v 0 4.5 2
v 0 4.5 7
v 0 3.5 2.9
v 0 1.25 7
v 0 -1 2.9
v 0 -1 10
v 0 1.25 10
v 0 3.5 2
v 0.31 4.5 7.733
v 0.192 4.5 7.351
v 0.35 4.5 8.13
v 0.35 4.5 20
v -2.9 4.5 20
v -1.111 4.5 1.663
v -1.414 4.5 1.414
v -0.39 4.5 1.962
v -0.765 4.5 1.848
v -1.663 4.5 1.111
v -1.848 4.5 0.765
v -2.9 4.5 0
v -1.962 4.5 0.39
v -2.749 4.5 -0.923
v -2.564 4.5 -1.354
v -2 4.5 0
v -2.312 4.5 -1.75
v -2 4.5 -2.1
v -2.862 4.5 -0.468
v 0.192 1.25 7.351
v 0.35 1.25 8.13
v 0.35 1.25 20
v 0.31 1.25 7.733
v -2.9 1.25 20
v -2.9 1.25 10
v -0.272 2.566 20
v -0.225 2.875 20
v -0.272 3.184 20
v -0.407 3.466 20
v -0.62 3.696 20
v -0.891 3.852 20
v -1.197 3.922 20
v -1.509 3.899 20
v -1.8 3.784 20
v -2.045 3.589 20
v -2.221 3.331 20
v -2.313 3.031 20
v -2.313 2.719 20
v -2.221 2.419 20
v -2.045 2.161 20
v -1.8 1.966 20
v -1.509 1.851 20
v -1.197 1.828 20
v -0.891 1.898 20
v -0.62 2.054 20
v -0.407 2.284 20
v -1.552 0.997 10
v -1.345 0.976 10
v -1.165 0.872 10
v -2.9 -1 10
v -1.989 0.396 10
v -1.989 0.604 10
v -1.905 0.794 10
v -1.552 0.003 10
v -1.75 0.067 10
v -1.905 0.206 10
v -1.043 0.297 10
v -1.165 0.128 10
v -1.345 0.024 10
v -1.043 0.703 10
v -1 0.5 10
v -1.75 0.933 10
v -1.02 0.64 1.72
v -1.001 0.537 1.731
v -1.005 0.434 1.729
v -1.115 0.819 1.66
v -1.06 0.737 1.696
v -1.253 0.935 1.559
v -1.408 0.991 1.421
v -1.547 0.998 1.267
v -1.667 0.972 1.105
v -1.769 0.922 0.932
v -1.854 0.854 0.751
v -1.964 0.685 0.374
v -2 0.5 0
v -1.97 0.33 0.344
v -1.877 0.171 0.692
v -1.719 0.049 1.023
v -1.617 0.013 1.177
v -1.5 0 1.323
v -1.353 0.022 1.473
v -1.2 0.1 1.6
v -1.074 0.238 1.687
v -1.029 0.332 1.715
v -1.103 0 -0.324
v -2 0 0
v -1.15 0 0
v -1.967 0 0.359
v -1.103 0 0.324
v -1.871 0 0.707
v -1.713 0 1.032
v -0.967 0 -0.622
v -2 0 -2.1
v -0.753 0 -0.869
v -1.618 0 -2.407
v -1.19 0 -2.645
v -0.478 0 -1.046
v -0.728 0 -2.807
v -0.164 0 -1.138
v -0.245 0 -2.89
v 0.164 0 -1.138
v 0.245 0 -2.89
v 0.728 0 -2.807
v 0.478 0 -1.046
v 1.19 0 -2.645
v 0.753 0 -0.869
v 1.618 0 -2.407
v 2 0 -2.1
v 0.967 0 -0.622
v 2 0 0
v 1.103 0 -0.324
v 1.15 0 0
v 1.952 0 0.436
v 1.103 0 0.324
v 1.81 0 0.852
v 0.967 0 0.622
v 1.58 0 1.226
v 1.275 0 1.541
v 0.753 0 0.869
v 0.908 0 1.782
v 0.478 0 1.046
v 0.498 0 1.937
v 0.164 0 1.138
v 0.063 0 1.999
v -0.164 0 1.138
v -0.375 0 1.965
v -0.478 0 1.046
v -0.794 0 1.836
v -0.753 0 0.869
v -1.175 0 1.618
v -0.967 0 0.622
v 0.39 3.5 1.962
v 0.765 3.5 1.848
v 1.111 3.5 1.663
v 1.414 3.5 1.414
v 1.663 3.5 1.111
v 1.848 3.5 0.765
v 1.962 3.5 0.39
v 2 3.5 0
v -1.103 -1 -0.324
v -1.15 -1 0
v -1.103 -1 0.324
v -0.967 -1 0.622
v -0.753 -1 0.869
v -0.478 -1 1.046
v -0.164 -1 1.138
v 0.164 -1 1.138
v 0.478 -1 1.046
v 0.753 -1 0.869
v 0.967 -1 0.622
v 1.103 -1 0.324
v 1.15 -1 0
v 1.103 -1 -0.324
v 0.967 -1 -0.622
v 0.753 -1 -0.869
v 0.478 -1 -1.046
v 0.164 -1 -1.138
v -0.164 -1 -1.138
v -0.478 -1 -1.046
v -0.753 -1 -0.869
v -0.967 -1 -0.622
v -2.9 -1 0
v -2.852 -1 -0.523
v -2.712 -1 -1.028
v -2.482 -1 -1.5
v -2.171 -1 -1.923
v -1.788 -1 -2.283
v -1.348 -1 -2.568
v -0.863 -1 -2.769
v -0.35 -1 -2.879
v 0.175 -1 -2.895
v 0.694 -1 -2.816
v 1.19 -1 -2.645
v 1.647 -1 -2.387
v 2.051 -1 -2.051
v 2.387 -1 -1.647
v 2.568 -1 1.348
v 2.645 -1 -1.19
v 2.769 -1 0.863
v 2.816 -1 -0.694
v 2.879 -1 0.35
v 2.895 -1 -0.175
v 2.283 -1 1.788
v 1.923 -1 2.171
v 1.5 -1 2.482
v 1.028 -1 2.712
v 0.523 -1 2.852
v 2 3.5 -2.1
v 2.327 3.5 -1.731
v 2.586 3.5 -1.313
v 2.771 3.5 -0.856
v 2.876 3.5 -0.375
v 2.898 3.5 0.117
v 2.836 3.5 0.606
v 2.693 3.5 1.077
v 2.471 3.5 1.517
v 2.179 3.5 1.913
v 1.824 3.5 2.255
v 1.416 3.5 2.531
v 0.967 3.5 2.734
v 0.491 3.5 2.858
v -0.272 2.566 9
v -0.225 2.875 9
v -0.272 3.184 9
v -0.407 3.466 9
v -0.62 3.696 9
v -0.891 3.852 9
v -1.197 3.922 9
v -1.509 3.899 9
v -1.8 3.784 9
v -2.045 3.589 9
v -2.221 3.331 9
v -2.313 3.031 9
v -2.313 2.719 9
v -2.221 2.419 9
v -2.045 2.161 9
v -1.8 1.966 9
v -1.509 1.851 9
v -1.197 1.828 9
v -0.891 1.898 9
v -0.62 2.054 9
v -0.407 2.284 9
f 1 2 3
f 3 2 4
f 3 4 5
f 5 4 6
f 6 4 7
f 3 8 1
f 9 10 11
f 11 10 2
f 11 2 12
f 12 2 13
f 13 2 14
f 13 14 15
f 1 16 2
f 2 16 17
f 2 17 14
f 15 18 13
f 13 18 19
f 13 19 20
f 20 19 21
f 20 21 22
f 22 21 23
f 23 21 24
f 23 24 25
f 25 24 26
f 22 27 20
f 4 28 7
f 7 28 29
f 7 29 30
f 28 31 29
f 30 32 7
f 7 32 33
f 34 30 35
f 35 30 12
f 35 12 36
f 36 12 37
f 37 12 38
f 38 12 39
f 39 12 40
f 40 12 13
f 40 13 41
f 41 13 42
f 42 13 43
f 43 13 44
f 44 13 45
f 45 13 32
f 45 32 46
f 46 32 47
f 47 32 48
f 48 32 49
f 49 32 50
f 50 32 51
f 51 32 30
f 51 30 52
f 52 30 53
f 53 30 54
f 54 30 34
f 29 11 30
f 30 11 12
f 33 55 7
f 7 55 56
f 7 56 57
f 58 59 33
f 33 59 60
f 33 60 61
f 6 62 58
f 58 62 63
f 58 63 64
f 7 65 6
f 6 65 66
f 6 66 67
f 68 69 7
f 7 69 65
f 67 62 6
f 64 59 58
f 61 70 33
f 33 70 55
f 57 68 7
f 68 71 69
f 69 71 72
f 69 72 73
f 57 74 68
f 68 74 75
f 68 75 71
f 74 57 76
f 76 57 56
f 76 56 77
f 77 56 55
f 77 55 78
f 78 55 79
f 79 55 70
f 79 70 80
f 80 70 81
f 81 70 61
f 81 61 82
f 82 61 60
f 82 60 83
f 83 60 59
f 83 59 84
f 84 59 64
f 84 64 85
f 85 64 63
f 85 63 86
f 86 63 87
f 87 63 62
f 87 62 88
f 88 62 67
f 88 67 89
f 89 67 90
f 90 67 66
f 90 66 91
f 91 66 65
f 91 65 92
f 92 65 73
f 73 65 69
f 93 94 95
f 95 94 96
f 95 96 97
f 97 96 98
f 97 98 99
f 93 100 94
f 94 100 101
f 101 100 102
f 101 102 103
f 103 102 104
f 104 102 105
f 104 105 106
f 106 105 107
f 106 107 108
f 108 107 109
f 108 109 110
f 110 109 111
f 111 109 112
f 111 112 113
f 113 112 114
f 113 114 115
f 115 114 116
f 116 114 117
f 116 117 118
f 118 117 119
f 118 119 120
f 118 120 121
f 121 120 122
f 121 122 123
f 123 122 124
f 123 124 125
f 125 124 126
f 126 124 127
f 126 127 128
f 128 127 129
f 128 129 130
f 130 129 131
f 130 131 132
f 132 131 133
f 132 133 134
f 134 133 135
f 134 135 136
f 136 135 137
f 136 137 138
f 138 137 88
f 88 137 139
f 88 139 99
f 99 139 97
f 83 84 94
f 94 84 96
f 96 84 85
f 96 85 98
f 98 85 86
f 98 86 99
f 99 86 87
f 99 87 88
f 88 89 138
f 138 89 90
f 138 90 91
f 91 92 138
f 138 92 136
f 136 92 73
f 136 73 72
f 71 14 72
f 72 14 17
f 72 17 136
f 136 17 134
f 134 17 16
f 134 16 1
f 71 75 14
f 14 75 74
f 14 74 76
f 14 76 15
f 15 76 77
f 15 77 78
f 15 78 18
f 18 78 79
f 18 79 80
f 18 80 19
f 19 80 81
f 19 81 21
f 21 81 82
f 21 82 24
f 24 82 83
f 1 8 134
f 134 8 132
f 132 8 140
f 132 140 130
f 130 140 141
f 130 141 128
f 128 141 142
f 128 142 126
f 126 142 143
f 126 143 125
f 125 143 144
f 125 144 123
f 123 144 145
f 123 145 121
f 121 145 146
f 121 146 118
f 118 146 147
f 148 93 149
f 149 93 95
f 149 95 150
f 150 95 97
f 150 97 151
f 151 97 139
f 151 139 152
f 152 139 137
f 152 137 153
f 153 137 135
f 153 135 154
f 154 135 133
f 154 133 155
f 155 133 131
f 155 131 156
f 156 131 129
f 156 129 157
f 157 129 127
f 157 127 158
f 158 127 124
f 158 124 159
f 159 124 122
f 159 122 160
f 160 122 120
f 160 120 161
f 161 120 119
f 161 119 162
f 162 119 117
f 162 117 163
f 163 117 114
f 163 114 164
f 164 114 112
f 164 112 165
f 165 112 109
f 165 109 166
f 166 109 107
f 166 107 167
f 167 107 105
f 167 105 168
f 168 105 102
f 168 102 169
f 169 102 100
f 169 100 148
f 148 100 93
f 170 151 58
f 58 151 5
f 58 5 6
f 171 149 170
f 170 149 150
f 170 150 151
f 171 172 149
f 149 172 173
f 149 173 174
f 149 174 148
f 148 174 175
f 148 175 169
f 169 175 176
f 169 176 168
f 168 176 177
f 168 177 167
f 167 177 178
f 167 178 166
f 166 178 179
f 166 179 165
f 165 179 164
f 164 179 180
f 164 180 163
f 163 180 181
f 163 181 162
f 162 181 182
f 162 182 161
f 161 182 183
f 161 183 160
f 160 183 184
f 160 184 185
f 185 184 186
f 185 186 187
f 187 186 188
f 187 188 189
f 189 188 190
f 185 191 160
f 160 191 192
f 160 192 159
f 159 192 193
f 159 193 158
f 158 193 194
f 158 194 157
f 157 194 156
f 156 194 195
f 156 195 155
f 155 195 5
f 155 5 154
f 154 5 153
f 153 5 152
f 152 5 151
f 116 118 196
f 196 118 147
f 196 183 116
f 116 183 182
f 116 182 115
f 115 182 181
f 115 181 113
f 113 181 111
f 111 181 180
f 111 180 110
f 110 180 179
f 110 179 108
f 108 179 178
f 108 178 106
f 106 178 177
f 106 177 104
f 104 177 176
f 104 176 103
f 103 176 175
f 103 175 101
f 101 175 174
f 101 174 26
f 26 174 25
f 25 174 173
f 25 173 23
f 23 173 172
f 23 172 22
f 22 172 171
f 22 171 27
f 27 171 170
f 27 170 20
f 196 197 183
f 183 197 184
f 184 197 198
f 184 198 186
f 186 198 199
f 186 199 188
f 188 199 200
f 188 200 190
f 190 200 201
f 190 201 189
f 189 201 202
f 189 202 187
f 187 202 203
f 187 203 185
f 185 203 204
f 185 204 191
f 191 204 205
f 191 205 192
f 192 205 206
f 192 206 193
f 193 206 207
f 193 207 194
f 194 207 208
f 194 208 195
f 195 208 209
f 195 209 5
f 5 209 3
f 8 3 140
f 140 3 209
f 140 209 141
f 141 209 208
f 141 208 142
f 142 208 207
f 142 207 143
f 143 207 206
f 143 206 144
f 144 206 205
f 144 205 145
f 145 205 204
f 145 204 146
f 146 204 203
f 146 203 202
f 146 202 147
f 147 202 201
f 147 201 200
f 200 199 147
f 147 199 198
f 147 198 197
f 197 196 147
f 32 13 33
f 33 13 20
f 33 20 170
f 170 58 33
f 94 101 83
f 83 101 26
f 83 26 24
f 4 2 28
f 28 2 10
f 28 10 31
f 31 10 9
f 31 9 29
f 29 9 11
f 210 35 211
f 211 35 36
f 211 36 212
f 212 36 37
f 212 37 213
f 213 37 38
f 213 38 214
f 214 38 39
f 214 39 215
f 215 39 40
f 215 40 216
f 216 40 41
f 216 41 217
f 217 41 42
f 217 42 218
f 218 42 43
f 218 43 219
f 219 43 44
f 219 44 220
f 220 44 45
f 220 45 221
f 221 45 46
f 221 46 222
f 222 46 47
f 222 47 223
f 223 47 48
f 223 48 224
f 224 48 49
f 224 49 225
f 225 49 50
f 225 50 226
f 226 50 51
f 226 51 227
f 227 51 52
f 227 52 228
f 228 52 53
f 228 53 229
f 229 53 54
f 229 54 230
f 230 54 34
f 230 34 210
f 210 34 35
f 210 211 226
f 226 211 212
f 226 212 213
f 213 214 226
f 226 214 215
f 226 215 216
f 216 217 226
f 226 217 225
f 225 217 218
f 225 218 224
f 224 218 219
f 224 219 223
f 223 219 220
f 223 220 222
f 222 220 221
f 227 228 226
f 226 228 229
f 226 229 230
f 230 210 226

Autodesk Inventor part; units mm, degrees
ref_plane "YZ Plane" through (0, 0, 0) normal (1, 0, 0) x (0, 1, 0)
ref_plane "XZ Plane" through (0, 0, 0) normal (0, 1, 0) x (-1, 0, 0)
ref_plane "XY Plane" through (0, 0, 0) normal (0, 0, 1) x (1, 0, 0)
sketch "スケッチ1" plane through (0, 0, 0) normal (0, 1, 0) x (-1, 0, 0)
  circle A0 centre (0, 0) radius 1.15
  circle A1 centre (0, 0) radius 2
  circle A2 centre (0, 0) radius 2.9
  line L0 (-2, 0) -> (2, 0)
  line L1 (2, 0) -> (2, -2.9)
  line L2 (2, -2.9) -> (-2, -2.9)
  line L3 (-2, -2.9) -> (-2, 0)
  line L4 (0, 0) -> (0, 2.9)
  line L5 (0, 0) -> (2.9, 0)
  line L6 (2.9, 0) -> (2.9, 10)
  line L7 (2.9, 10) -> (0, 10)
  line L8 (0, 10) -> (0, 0)
  point P0 (0, 2)
  point P1 (2, -2.1)
  point P2 (-2, -2.1)
  dimension "d1" = 4
  dimension "d2" = 5.8
  dimension "d0" = 2.3
  dimension "d3" = 10
extrude "押し出し1" add sketch "スケッチ1" along normal blind 4.5 contours L5 A2 L1 | A1 L4 A2 L5 | A2 L8 L7 L6
extrude "押し出し2" add sketch "スケッチ1" along normal blind 3.5 contours A1 L3 A2 L4
extrude "押し出し3" add sketch "スケッチ1" against normal blind 1 contours L0 A1 A0 | A0 L4 A1 L0 | A0 L0 A1 L4 | L1 A2 L3 A1 | L5 A2 L1 | A1 L4 A2 L5 | A1 L3 A2 L4 | A2 L8 L7 L6
sketch "スケッチ2" plane through (-2.9, 4.5, 10) normal (0, 0, 1) x (1, 0, 0)
  line L0 (2.9, -4.5) -> (1.4, -4.5)
  line L1 (1.4, -4.5) -> (1.4, -4)
  line L2 (1.4, -4) -> (2.9, -4)
  line L3 (2.9, -4) -> (2.9, -4.5)
  dimension "d10" = 1.5
  dimension "d11" = 0.5
hole "穴1" at (-1.5, 0.5, 10) direction (0, 0, -1) diameter 1 end through all
sketch "スケッチ3" plane through (-2.9, 4.5, 10) normal (0, 0, 1) x (1, 0, 0)
  line L0 (0.9, 0) -> (0, 0) projected
  line L1 (0, 0) -> (4, 0)
  line L2 (4, 0) -> (4, -4)
  line L3 (4, -4) -> (0, -4)
  line L4 (0, -4) -> (0, 0)
  line L5 (0, 0) -> (3.25, 0)
  line L6 (3.25, 0) -> (3.25, -3.25)
  line L7 (3.25, -3.25) -> (0, -3.25)
  line L8 (0, -3.25) -> (0, 0)
  line L9 (0, 0) -> (1.625, 0)
  line L10 (1.625, 0) -> (1.625, -1.625)
  line L11 (1.625, -1.625) -> (0, -1.625)
  line L12 (0, -1.625) -> (0, 0)
  point P0 (2.9, -4.5)
  dimension "d19" = 4
  dimension "d20" = 4
  dimension "d21" = 3.25
  dimension "d22" = 3.25
extrude "押し出し4" add sketch "スケッチ3" along normal blind 10 and the other way blind 3 contours L1 L10 L11 L4 L0 | L1 L6 L7 L4 L11 L10
fillet "フィレット1" radius 2 1 edges at (0.35, 2.875, 7)
sketch "スケッチ4" plane through (-2.9, 4.5, 20) normal (0, 0, 1) x (1, 0, 0)
  line L0 (0.9, 0) -> (0, 0) projected
  line L1 (0, 0) -> (1.625, 0)
  line L2 (1.625, 0) -> (1.625, -1.625)
  line L3 (1.625, -1.625) -> (0, -1.625)
  line L4 (0, -1.625) -> (0, 0)
  circle A0 centre (1.625, -1.625) radius 1.05
  point P0 (2.9, -4.5)
  dimension "d28" = 1.625
  dimension "d29" = 1.625
  dimension "d30" = 2.1
extrude "押し出し5" cut sketch "スケッチ4" against normal blind 11 contours A0 L3 L2 | L2 L3 A0
properties part number "srod1.5right"
